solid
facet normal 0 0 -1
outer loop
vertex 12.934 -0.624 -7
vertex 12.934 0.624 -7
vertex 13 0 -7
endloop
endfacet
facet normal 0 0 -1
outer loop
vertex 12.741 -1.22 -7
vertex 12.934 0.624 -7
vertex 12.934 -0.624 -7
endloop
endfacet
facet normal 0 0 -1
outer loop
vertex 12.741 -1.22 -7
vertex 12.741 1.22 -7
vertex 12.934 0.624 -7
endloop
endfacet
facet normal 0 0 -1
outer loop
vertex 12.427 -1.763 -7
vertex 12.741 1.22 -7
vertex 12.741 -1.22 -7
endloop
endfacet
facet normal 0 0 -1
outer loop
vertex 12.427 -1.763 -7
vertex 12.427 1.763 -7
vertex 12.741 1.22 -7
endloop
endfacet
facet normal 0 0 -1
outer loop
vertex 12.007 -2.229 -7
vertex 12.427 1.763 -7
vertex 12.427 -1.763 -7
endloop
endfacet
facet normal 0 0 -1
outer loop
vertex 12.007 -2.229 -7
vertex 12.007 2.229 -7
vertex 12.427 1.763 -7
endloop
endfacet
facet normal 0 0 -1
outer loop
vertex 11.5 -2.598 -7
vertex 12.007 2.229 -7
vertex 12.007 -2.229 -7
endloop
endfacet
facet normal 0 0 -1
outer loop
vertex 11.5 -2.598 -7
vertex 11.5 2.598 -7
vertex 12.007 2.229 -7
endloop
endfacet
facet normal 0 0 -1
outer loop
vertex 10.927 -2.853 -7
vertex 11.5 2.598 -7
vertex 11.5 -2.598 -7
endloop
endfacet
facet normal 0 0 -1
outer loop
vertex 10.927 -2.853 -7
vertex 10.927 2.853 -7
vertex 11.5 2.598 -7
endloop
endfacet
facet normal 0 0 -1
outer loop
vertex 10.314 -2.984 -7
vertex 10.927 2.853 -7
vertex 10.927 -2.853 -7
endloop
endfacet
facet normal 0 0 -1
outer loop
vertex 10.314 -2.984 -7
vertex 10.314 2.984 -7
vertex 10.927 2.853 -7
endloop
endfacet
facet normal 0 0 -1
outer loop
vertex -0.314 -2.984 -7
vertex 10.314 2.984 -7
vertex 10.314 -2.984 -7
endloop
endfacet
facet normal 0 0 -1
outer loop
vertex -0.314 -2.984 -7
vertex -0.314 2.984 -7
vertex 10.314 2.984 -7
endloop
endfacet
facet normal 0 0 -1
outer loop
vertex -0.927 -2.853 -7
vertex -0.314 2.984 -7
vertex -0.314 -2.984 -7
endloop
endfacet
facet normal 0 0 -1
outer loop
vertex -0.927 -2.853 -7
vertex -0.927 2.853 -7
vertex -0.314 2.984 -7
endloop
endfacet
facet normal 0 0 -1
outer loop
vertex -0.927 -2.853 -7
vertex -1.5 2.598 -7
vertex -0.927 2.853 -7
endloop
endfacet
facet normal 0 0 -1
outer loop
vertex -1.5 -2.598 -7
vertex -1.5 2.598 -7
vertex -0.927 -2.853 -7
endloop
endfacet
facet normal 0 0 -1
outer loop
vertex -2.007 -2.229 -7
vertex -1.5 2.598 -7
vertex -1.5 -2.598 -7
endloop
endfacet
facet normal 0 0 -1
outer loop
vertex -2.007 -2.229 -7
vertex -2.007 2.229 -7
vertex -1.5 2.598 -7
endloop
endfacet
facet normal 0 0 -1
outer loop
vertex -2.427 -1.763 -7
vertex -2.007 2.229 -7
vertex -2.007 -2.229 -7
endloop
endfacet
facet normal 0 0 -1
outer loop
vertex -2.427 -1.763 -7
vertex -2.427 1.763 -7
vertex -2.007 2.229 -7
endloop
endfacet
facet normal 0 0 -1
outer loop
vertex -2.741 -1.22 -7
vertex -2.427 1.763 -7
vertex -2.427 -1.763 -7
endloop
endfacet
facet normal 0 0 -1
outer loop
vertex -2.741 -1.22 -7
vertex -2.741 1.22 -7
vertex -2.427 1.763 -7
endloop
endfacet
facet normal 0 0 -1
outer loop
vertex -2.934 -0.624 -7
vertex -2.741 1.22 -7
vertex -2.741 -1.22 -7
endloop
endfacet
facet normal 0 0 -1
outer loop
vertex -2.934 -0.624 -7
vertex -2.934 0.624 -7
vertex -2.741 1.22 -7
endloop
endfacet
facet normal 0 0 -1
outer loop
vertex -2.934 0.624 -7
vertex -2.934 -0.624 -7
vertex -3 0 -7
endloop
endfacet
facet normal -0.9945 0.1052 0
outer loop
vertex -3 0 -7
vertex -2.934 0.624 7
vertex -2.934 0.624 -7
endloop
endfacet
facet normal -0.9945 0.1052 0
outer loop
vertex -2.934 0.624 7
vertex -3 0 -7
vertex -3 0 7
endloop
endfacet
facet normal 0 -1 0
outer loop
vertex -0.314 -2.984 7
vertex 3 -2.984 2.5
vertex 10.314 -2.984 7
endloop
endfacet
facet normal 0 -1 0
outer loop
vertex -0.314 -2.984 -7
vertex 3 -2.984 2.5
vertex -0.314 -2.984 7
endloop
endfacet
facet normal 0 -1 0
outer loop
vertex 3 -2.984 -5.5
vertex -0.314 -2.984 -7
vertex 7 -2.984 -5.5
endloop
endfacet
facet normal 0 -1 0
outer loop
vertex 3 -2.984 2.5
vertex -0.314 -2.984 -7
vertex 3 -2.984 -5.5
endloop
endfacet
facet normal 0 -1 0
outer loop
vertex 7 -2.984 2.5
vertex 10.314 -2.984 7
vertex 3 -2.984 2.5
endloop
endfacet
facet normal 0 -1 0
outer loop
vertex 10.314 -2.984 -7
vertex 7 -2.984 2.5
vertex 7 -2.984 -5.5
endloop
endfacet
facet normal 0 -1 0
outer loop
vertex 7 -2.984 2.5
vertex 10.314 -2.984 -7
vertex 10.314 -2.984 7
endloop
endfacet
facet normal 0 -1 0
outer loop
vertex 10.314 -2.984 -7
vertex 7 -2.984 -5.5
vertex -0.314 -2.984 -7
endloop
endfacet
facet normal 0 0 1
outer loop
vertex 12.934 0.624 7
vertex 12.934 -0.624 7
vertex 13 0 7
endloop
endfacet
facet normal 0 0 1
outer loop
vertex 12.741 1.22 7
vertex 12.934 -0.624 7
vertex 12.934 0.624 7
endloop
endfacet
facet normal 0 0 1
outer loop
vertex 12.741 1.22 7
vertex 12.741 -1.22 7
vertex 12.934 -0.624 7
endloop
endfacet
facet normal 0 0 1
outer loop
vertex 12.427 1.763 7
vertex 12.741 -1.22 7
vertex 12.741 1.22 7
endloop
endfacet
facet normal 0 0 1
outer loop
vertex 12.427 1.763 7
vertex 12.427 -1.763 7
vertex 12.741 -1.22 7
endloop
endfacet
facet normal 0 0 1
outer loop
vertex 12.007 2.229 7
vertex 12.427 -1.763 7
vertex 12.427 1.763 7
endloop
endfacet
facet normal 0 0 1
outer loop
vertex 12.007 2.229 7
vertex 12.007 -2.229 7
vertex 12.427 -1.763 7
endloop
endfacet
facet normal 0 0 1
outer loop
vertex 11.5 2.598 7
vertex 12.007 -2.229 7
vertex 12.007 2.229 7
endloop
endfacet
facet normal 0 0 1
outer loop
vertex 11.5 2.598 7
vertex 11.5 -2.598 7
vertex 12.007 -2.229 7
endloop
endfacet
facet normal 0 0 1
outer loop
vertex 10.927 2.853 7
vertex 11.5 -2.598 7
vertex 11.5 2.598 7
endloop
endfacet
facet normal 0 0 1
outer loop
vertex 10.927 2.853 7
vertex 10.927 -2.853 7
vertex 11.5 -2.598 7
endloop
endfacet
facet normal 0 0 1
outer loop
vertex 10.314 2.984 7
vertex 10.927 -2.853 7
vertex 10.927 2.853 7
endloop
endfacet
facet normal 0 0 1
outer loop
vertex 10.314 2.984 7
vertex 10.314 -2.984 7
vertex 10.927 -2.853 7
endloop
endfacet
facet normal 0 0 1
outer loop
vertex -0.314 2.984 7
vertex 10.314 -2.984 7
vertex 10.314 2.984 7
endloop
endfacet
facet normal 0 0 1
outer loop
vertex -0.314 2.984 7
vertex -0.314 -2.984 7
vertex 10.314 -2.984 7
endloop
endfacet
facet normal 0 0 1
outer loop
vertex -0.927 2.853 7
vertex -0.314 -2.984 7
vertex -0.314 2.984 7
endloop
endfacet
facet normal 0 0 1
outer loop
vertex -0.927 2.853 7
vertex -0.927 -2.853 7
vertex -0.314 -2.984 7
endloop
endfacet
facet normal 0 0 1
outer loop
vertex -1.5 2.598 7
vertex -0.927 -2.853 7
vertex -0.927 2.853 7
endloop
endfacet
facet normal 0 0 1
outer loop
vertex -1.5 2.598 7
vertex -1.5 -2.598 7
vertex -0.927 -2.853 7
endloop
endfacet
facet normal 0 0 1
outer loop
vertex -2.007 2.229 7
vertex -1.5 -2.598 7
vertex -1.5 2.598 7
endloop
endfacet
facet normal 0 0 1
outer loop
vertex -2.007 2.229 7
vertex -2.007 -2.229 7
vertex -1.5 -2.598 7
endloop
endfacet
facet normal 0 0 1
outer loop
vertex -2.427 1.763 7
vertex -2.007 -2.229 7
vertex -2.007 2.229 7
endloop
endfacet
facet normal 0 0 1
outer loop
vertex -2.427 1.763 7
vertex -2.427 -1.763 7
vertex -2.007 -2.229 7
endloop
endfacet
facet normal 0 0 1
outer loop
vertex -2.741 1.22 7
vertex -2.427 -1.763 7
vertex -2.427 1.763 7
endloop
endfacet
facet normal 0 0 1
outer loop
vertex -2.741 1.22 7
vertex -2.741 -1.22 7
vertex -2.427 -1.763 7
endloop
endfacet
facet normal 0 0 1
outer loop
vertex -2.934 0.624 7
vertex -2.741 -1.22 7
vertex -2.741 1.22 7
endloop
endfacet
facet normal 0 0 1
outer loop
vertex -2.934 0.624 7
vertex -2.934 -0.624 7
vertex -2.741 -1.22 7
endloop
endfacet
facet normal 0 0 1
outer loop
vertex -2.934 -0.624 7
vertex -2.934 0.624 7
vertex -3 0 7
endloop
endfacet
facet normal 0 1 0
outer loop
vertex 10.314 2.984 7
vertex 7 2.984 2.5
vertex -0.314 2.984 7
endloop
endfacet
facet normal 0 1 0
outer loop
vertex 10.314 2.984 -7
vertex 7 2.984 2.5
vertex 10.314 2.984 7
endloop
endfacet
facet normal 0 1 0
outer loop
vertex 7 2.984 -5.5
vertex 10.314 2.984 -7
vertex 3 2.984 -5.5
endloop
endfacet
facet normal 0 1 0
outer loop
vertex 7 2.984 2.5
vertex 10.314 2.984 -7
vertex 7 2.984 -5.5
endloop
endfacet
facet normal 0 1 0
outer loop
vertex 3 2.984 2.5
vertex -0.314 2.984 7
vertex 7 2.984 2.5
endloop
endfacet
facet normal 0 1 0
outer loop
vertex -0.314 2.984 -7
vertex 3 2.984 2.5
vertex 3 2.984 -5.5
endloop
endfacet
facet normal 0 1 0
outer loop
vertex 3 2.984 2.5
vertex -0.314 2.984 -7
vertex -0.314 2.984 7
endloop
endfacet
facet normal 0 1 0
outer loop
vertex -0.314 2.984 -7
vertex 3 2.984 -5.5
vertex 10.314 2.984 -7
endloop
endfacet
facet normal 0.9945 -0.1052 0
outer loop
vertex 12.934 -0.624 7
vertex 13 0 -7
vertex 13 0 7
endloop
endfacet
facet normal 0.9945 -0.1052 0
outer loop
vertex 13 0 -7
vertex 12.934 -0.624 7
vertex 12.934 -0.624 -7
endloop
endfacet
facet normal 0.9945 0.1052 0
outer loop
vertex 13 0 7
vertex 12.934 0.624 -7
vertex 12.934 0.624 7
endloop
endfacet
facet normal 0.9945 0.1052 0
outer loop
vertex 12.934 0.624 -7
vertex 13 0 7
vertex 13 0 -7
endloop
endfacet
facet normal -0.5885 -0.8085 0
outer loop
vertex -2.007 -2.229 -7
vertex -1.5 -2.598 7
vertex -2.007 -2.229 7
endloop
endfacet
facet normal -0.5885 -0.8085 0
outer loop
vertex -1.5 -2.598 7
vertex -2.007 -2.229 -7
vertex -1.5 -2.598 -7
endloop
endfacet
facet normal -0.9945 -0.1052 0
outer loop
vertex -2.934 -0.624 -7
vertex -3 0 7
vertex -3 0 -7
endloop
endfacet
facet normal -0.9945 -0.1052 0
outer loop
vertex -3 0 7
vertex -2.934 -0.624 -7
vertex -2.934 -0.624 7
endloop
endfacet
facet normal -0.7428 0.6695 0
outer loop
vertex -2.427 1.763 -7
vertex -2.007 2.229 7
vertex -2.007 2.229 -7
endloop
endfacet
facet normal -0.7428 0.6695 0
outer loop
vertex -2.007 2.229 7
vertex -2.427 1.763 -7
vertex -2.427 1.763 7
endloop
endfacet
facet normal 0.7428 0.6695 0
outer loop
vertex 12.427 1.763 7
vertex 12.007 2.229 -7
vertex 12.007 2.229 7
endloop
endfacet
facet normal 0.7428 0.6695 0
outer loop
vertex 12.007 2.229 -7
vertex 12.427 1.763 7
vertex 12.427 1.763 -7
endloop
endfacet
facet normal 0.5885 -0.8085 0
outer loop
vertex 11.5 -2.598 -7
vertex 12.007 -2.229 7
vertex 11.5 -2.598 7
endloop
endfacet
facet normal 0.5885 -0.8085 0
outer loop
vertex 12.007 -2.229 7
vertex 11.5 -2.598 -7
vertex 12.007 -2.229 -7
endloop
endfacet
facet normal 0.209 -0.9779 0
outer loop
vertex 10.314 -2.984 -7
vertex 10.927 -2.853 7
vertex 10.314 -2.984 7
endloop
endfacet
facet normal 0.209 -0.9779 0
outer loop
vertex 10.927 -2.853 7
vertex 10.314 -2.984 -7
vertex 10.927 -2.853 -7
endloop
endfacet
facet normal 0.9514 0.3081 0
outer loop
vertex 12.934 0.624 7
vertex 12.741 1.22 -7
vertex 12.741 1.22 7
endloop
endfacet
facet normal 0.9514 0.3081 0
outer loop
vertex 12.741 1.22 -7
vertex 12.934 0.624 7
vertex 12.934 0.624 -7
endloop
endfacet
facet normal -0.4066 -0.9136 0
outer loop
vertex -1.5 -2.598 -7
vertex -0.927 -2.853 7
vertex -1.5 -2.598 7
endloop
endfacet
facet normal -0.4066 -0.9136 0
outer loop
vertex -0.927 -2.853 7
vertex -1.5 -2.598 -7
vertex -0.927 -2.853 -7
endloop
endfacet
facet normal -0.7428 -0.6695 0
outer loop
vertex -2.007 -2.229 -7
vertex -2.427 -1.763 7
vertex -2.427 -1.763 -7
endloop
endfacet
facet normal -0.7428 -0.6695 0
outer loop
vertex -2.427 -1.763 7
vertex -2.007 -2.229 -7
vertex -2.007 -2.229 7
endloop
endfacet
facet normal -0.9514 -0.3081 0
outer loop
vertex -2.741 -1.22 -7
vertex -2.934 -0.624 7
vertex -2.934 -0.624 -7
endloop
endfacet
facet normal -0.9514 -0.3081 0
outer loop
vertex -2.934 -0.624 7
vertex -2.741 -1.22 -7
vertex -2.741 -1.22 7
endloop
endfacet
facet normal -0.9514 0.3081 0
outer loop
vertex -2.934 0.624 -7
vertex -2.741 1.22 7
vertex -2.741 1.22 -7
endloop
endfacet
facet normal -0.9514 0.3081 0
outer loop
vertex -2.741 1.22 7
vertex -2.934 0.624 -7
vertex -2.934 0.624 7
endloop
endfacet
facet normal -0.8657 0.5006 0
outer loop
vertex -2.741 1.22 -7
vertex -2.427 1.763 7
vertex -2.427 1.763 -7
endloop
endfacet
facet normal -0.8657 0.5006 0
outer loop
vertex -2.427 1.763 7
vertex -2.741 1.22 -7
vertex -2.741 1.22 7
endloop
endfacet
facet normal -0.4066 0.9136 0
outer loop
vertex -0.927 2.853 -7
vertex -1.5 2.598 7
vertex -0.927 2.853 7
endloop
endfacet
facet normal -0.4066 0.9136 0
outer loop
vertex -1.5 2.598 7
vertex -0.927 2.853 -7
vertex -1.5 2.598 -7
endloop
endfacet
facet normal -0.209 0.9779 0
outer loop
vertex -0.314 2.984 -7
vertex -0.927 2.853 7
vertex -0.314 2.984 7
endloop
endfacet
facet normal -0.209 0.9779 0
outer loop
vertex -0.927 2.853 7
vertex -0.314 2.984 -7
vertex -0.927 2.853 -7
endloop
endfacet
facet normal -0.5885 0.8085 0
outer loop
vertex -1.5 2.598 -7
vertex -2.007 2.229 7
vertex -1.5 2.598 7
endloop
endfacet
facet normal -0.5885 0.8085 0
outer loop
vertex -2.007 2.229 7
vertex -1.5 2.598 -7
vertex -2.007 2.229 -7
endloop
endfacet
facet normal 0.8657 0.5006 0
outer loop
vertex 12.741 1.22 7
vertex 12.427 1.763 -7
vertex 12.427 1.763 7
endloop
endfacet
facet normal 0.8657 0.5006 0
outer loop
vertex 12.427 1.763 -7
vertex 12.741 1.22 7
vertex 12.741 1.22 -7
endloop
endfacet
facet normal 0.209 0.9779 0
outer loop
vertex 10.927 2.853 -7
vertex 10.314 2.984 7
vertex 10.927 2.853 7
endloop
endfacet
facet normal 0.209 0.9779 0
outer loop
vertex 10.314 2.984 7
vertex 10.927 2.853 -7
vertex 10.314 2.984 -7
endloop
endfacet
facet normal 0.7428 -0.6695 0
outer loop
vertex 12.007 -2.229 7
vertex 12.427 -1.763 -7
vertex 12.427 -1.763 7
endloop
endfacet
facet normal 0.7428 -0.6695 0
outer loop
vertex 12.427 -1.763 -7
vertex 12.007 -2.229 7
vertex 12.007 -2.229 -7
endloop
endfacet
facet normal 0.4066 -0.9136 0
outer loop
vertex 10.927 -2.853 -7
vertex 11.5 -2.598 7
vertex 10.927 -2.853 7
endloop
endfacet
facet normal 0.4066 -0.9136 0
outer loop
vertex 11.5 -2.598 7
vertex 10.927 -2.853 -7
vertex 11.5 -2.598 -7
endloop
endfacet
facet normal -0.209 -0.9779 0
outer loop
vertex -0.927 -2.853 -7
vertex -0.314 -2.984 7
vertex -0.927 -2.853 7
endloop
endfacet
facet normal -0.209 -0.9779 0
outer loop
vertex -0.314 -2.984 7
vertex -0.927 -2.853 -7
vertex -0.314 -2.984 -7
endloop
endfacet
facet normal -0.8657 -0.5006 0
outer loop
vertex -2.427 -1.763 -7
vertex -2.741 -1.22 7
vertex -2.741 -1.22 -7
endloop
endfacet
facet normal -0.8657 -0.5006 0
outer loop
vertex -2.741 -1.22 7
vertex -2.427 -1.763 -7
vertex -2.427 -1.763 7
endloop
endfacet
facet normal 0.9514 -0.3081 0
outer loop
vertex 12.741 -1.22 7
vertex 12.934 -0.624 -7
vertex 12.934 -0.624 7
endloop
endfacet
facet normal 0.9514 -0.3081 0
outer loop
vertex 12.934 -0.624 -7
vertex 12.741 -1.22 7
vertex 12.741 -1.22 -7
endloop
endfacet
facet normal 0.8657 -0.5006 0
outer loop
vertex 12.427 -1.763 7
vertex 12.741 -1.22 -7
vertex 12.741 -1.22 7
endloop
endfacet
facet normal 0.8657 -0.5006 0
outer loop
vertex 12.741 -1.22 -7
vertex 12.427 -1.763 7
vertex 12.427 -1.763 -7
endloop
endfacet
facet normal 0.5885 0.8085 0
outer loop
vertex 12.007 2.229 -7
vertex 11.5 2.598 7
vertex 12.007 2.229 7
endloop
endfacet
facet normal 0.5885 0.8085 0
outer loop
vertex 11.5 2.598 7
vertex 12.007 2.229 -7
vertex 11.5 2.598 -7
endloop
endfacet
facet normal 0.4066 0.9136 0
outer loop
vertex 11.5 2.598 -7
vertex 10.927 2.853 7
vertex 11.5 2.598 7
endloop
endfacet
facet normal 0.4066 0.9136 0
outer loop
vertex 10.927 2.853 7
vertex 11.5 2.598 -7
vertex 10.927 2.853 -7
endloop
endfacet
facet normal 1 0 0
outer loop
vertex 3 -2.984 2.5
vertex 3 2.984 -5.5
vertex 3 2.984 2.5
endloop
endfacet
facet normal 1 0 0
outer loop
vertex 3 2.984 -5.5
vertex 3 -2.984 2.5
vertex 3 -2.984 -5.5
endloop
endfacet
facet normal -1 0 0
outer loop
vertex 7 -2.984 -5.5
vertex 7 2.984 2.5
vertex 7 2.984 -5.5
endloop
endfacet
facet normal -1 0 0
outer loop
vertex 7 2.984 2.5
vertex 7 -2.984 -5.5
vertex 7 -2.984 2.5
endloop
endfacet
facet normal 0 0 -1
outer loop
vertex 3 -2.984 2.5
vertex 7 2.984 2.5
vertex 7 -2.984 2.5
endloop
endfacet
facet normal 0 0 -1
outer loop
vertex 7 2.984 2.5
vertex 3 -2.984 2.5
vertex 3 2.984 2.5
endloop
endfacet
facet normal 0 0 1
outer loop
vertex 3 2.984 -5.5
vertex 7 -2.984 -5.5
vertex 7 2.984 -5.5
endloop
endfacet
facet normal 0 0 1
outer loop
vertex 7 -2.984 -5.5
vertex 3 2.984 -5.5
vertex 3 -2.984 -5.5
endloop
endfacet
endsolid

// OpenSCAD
$fn=30;
height=10;
radius=3;
difference(){
    hull(){
      cylinder(r=radius,h=height+4, center=true);
      translate([10,0,0])cylinder(r=radius,h=height+4, center=true);
  }
  rotate([90,0,0]) translate([5,-1.5,0])cube([height-6,height-2,999],center=true);
}
